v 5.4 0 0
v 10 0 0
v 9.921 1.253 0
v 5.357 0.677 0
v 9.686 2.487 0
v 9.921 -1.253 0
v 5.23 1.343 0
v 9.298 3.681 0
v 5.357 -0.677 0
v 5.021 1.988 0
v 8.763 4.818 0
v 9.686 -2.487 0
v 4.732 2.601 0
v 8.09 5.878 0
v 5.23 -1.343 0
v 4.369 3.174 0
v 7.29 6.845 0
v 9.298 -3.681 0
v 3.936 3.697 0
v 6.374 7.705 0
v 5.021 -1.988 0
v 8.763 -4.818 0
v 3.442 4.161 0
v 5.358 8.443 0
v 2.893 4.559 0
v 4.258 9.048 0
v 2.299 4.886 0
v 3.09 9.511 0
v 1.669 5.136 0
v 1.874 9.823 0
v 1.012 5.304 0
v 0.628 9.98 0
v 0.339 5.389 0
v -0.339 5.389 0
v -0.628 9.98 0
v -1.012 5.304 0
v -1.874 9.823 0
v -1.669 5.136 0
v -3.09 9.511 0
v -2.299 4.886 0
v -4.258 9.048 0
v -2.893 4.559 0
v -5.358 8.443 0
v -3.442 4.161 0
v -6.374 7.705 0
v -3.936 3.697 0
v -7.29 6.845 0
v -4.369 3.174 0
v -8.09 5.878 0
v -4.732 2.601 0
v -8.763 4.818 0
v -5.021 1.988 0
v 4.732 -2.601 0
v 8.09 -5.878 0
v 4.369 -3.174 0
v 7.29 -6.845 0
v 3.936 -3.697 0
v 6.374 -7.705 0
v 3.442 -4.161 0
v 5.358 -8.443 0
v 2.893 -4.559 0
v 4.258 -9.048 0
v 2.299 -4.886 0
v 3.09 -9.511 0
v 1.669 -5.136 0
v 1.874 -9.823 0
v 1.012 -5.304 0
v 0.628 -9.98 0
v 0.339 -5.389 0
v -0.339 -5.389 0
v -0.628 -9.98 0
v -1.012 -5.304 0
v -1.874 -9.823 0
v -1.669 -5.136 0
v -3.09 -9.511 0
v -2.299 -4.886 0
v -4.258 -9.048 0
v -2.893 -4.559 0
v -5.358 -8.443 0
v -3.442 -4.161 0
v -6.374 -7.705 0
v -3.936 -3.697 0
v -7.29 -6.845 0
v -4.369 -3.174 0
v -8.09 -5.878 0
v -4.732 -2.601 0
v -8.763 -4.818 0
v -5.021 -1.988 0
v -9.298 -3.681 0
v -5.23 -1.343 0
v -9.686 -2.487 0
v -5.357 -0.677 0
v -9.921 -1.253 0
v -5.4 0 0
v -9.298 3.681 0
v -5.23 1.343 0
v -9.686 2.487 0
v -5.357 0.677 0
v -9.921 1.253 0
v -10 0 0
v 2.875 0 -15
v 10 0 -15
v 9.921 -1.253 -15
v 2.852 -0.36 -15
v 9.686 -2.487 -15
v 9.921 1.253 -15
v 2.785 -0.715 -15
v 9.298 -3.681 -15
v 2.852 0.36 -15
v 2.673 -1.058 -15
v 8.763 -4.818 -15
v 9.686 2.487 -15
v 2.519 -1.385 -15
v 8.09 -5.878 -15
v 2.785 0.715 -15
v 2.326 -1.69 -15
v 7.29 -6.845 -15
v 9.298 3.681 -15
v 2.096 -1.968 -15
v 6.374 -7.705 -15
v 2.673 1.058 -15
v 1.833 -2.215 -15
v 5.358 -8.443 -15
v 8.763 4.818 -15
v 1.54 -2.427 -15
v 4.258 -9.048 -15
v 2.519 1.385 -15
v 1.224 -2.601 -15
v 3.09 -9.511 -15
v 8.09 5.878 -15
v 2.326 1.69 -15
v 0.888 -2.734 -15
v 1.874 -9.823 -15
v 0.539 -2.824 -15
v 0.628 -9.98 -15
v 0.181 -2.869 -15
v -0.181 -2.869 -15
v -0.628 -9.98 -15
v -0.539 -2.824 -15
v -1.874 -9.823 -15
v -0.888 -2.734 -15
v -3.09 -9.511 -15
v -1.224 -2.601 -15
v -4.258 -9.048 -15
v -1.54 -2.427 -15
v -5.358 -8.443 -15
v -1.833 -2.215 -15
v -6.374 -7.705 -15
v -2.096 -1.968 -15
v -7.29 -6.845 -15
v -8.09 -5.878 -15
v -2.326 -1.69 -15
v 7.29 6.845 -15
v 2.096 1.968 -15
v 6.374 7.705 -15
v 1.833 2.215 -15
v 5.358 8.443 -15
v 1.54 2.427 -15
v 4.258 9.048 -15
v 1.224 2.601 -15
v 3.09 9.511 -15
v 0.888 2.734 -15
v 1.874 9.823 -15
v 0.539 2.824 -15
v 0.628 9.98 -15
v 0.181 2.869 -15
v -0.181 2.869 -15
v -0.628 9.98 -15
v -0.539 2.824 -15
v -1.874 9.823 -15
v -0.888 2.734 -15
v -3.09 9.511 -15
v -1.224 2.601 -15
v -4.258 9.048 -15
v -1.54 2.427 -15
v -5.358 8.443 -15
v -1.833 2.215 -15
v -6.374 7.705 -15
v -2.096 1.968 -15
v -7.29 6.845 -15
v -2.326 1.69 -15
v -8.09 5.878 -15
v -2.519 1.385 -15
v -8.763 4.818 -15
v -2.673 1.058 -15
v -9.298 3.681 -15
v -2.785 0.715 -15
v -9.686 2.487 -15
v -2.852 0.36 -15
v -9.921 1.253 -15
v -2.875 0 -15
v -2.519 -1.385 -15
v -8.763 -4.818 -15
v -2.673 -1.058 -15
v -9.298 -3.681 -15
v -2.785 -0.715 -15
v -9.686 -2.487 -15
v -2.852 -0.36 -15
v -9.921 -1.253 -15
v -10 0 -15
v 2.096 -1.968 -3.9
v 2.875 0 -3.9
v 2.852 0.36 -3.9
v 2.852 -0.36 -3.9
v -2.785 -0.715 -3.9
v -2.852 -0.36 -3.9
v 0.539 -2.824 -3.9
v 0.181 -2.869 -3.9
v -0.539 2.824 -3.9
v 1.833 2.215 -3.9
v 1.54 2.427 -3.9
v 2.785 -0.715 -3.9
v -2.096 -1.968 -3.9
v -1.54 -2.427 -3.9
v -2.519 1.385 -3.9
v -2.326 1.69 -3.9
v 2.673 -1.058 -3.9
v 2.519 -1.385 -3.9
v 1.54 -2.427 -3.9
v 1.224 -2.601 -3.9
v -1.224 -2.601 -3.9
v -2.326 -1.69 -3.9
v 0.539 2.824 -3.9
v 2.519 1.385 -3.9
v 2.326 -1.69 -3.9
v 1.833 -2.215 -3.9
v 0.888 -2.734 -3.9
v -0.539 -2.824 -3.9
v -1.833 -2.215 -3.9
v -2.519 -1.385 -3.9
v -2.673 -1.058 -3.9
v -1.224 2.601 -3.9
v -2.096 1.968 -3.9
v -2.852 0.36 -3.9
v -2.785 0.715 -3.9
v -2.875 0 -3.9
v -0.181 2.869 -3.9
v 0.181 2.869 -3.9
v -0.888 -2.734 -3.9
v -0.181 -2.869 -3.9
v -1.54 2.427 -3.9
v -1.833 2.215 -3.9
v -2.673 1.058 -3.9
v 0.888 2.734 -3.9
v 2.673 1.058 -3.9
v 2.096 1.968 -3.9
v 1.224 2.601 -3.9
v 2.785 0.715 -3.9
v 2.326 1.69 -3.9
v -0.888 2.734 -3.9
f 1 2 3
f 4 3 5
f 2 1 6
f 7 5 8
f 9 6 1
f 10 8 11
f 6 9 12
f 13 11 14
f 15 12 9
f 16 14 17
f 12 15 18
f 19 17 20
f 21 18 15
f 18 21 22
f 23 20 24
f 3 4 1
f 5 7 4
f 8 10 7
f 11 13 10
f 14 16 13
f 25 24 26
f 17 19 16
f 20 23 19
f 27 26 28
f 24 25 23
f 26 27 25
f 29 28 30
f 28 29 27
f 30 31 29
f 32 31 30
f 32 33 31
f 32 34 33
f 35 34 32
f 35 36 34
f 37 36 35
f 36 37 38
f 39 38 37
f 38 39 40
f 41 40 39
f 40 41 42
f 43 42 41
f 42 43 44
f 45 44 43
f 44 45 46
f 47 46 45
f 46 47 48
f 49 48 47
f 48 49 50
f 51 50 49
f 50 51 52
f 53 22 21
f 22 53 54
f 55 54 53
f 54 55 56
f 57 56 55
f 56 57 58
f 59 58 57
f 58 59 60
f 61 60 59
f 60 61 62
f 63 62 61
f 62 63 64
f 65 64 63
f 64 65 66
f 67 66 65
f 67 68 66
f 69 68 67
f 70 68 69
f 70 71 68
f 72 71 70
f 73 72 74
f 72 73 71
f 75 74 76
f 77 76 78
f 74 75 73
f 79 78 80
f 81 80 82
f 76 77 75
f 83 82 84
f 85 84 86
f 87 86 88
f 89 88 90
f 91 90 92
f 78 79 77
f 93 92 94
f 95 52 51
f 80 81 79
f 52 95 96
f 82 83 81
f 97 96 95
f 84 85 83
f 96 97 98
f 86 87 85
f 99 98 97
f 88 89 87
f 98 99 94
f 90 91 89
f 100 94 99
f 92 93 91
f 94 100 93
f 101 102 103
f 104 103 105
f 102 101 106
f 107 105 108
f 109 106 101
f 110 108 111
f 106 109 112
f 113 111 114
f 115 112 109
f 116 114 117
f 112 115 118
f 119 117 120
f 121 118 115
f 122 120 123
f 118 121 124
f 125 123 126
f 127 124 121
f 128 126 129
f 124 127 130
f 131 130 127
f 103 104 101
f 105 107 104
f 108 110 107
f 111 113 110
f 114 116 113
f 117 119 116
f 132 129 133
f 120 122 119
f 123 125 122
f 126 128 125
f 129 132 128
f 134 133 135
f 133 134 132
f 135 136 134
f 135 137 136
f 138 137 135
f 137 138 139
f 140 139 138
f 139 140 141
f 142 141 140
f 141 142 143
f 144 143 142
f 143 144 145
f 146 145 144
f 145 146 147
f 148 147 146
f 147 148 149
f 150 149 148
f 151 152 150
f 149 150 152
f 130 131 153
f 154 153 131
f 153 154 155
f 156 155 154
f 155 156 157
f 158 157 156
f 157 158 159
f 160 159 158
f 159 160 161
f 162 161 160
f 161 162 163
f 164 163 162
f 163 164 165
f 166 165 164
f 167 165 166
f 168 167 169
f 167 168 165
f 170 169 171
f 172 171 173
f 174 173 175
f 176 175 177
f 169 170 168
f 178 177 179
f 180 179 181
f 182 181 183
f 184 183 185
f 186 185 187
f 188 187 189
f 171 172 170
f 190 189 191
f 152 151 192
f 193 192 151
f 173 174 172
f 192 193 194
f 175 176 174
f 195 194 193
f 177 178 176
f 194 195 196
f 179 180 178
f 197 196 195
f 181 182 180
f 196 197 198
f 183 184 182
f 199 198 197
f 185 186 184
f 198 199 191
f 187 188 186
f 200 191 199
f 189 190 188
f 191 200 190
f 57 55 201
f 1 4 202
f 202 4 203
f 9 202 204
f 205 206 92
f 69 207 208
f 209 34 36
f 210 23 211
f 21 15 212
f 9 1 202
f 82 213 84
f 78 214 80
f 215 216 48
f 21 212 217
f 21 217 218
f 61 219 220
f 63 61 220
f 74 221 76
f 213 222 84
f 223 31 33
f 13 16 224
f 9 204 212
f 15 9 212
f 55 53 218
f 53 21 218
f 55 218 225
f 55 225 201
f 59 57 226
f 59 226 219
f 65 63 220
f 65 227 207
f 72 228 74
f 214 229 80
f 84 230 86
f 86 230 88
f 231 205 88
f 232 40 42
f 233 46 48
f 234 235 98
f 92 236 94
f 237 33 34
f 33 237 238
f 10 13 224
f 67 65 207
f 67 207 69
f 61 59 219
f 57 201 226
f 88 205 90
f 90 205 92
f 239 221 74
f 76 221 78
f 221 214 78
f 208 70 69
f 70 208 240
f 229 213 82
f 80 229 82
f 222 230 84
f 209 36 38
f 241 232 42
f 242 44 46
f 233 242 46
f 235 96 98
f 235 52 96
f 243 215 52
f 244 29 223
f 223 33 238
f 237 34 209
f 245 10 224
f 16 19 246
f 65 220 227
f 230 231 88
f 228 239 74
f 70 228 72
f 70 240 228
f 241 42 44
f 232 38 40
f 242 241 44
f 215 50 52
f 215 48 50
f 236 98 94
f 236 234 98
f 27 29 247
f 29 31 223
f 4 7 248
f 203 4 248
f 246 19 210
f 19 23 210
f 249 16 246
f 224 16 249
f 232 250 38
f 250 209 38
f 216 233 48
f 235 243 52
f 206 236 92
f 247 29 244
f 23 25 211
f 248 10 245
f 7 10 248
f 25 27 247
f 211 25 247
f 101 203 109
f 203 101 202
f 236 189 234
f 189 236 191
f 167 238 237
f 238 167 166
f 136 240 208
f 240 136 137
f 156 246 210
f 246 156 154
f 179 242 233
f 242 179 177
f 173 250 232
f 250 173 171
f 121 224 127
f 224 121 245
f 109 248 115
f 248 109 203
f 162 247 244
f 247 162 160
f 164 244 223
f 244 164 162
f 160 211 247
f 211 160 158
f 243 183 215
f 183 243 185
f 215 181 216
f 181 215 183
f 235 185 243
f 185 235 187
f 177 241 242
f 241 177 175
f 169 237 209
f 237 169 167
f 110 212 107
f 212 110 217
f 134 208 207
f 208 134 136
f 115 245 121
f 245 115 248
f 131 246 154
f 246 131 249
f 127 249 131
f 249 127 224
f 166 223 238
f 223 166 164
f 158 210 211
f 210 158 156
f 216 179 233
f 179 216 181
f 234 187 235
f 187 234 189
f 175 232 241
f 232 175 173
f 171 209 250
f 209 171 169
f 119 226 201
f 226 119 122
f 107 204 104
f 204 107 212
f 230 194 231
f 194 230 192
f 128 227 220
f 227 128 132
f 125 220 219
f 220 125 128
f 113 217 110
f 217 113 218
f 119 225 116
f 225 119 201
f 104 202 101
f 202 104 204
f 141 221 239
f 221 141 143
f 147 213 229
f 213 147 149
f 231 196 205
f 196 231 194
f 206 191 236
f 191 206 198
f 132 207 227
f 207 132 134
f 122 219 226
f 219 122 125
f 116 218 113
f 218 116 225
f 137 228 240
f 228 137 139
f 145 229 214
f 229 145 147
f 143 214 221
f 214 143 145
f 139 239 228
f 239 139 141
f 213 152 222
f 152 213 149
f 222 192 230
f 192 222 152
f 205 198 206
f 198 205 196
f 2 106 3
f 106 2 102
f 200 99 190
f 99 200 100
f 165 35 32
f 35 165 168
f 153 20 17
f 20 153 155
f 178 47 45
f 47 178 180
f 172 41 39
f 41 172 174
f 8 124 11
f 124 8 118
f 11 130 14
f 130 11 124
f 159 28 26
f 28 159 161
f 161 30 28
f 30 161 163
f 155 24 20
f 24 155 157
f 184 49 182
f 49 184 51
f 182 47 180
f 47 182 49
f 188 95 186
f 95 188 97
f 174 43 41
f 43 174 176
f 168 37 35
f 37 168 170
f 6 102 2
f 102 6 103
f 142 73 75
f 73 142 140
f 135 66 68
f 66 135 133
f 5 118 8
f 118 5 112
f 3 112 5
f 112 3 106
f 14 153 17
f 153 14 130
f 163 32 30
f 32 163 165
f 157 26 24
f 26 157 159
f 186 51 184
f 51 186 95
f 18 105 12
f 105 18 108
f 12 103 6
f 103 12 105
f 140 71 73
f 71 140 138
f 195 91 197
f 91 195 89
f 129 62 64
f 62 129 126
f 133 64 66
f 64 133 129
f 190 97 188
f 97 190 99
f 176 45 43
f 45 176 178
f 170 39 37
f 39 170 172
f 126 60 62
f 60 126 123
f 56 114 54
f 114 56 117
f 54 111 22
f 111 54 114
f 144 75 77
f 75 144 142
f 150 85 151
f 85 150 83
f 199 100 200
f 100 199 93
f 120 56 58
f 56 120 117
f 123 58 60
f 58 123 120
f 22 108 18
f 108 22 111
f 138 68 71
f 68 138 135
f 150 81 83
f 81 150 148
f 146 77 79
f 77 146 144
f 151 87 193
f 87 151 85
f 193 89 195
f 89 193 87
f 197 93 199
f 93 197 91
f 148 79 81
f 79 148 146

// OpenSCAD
$fn = 50;


difference() {
	union() {
		translate(v = [0, 0, -15.0000000000]) {
			cylinder(h = 15, r = 10.0000000000);
		}
		cylinder(h = 0, r = 13.0000000000);
	}
	union() {
		translate(v = [0, 0, 0]) {
			rotate(a = [0, 0, 0]) {
				difference() {
					union() {
						#translate(v = [0, 0, -15.0000000000]) {
							cylinder(h = 15, r = 2.6000000000);
						}
						#translate(v = [0, 0, -3.9000000000]) {
							cylinder(h = 3.9000000000, r = 10.0000000000, r1 = 2.8750000000, r2 = 5.4000000000);
						}
						#translate(v = [0, 0, -15.0000000000]) {
							cylinder(h = 15, r = 2.8750000000);
						}
						#translate(v = [0, 0, -15.0000000000]) {
							cylinder(h = 15, r = 2.6000000000);
						}
					}
					union();
				}
			}
		}
	}
}
